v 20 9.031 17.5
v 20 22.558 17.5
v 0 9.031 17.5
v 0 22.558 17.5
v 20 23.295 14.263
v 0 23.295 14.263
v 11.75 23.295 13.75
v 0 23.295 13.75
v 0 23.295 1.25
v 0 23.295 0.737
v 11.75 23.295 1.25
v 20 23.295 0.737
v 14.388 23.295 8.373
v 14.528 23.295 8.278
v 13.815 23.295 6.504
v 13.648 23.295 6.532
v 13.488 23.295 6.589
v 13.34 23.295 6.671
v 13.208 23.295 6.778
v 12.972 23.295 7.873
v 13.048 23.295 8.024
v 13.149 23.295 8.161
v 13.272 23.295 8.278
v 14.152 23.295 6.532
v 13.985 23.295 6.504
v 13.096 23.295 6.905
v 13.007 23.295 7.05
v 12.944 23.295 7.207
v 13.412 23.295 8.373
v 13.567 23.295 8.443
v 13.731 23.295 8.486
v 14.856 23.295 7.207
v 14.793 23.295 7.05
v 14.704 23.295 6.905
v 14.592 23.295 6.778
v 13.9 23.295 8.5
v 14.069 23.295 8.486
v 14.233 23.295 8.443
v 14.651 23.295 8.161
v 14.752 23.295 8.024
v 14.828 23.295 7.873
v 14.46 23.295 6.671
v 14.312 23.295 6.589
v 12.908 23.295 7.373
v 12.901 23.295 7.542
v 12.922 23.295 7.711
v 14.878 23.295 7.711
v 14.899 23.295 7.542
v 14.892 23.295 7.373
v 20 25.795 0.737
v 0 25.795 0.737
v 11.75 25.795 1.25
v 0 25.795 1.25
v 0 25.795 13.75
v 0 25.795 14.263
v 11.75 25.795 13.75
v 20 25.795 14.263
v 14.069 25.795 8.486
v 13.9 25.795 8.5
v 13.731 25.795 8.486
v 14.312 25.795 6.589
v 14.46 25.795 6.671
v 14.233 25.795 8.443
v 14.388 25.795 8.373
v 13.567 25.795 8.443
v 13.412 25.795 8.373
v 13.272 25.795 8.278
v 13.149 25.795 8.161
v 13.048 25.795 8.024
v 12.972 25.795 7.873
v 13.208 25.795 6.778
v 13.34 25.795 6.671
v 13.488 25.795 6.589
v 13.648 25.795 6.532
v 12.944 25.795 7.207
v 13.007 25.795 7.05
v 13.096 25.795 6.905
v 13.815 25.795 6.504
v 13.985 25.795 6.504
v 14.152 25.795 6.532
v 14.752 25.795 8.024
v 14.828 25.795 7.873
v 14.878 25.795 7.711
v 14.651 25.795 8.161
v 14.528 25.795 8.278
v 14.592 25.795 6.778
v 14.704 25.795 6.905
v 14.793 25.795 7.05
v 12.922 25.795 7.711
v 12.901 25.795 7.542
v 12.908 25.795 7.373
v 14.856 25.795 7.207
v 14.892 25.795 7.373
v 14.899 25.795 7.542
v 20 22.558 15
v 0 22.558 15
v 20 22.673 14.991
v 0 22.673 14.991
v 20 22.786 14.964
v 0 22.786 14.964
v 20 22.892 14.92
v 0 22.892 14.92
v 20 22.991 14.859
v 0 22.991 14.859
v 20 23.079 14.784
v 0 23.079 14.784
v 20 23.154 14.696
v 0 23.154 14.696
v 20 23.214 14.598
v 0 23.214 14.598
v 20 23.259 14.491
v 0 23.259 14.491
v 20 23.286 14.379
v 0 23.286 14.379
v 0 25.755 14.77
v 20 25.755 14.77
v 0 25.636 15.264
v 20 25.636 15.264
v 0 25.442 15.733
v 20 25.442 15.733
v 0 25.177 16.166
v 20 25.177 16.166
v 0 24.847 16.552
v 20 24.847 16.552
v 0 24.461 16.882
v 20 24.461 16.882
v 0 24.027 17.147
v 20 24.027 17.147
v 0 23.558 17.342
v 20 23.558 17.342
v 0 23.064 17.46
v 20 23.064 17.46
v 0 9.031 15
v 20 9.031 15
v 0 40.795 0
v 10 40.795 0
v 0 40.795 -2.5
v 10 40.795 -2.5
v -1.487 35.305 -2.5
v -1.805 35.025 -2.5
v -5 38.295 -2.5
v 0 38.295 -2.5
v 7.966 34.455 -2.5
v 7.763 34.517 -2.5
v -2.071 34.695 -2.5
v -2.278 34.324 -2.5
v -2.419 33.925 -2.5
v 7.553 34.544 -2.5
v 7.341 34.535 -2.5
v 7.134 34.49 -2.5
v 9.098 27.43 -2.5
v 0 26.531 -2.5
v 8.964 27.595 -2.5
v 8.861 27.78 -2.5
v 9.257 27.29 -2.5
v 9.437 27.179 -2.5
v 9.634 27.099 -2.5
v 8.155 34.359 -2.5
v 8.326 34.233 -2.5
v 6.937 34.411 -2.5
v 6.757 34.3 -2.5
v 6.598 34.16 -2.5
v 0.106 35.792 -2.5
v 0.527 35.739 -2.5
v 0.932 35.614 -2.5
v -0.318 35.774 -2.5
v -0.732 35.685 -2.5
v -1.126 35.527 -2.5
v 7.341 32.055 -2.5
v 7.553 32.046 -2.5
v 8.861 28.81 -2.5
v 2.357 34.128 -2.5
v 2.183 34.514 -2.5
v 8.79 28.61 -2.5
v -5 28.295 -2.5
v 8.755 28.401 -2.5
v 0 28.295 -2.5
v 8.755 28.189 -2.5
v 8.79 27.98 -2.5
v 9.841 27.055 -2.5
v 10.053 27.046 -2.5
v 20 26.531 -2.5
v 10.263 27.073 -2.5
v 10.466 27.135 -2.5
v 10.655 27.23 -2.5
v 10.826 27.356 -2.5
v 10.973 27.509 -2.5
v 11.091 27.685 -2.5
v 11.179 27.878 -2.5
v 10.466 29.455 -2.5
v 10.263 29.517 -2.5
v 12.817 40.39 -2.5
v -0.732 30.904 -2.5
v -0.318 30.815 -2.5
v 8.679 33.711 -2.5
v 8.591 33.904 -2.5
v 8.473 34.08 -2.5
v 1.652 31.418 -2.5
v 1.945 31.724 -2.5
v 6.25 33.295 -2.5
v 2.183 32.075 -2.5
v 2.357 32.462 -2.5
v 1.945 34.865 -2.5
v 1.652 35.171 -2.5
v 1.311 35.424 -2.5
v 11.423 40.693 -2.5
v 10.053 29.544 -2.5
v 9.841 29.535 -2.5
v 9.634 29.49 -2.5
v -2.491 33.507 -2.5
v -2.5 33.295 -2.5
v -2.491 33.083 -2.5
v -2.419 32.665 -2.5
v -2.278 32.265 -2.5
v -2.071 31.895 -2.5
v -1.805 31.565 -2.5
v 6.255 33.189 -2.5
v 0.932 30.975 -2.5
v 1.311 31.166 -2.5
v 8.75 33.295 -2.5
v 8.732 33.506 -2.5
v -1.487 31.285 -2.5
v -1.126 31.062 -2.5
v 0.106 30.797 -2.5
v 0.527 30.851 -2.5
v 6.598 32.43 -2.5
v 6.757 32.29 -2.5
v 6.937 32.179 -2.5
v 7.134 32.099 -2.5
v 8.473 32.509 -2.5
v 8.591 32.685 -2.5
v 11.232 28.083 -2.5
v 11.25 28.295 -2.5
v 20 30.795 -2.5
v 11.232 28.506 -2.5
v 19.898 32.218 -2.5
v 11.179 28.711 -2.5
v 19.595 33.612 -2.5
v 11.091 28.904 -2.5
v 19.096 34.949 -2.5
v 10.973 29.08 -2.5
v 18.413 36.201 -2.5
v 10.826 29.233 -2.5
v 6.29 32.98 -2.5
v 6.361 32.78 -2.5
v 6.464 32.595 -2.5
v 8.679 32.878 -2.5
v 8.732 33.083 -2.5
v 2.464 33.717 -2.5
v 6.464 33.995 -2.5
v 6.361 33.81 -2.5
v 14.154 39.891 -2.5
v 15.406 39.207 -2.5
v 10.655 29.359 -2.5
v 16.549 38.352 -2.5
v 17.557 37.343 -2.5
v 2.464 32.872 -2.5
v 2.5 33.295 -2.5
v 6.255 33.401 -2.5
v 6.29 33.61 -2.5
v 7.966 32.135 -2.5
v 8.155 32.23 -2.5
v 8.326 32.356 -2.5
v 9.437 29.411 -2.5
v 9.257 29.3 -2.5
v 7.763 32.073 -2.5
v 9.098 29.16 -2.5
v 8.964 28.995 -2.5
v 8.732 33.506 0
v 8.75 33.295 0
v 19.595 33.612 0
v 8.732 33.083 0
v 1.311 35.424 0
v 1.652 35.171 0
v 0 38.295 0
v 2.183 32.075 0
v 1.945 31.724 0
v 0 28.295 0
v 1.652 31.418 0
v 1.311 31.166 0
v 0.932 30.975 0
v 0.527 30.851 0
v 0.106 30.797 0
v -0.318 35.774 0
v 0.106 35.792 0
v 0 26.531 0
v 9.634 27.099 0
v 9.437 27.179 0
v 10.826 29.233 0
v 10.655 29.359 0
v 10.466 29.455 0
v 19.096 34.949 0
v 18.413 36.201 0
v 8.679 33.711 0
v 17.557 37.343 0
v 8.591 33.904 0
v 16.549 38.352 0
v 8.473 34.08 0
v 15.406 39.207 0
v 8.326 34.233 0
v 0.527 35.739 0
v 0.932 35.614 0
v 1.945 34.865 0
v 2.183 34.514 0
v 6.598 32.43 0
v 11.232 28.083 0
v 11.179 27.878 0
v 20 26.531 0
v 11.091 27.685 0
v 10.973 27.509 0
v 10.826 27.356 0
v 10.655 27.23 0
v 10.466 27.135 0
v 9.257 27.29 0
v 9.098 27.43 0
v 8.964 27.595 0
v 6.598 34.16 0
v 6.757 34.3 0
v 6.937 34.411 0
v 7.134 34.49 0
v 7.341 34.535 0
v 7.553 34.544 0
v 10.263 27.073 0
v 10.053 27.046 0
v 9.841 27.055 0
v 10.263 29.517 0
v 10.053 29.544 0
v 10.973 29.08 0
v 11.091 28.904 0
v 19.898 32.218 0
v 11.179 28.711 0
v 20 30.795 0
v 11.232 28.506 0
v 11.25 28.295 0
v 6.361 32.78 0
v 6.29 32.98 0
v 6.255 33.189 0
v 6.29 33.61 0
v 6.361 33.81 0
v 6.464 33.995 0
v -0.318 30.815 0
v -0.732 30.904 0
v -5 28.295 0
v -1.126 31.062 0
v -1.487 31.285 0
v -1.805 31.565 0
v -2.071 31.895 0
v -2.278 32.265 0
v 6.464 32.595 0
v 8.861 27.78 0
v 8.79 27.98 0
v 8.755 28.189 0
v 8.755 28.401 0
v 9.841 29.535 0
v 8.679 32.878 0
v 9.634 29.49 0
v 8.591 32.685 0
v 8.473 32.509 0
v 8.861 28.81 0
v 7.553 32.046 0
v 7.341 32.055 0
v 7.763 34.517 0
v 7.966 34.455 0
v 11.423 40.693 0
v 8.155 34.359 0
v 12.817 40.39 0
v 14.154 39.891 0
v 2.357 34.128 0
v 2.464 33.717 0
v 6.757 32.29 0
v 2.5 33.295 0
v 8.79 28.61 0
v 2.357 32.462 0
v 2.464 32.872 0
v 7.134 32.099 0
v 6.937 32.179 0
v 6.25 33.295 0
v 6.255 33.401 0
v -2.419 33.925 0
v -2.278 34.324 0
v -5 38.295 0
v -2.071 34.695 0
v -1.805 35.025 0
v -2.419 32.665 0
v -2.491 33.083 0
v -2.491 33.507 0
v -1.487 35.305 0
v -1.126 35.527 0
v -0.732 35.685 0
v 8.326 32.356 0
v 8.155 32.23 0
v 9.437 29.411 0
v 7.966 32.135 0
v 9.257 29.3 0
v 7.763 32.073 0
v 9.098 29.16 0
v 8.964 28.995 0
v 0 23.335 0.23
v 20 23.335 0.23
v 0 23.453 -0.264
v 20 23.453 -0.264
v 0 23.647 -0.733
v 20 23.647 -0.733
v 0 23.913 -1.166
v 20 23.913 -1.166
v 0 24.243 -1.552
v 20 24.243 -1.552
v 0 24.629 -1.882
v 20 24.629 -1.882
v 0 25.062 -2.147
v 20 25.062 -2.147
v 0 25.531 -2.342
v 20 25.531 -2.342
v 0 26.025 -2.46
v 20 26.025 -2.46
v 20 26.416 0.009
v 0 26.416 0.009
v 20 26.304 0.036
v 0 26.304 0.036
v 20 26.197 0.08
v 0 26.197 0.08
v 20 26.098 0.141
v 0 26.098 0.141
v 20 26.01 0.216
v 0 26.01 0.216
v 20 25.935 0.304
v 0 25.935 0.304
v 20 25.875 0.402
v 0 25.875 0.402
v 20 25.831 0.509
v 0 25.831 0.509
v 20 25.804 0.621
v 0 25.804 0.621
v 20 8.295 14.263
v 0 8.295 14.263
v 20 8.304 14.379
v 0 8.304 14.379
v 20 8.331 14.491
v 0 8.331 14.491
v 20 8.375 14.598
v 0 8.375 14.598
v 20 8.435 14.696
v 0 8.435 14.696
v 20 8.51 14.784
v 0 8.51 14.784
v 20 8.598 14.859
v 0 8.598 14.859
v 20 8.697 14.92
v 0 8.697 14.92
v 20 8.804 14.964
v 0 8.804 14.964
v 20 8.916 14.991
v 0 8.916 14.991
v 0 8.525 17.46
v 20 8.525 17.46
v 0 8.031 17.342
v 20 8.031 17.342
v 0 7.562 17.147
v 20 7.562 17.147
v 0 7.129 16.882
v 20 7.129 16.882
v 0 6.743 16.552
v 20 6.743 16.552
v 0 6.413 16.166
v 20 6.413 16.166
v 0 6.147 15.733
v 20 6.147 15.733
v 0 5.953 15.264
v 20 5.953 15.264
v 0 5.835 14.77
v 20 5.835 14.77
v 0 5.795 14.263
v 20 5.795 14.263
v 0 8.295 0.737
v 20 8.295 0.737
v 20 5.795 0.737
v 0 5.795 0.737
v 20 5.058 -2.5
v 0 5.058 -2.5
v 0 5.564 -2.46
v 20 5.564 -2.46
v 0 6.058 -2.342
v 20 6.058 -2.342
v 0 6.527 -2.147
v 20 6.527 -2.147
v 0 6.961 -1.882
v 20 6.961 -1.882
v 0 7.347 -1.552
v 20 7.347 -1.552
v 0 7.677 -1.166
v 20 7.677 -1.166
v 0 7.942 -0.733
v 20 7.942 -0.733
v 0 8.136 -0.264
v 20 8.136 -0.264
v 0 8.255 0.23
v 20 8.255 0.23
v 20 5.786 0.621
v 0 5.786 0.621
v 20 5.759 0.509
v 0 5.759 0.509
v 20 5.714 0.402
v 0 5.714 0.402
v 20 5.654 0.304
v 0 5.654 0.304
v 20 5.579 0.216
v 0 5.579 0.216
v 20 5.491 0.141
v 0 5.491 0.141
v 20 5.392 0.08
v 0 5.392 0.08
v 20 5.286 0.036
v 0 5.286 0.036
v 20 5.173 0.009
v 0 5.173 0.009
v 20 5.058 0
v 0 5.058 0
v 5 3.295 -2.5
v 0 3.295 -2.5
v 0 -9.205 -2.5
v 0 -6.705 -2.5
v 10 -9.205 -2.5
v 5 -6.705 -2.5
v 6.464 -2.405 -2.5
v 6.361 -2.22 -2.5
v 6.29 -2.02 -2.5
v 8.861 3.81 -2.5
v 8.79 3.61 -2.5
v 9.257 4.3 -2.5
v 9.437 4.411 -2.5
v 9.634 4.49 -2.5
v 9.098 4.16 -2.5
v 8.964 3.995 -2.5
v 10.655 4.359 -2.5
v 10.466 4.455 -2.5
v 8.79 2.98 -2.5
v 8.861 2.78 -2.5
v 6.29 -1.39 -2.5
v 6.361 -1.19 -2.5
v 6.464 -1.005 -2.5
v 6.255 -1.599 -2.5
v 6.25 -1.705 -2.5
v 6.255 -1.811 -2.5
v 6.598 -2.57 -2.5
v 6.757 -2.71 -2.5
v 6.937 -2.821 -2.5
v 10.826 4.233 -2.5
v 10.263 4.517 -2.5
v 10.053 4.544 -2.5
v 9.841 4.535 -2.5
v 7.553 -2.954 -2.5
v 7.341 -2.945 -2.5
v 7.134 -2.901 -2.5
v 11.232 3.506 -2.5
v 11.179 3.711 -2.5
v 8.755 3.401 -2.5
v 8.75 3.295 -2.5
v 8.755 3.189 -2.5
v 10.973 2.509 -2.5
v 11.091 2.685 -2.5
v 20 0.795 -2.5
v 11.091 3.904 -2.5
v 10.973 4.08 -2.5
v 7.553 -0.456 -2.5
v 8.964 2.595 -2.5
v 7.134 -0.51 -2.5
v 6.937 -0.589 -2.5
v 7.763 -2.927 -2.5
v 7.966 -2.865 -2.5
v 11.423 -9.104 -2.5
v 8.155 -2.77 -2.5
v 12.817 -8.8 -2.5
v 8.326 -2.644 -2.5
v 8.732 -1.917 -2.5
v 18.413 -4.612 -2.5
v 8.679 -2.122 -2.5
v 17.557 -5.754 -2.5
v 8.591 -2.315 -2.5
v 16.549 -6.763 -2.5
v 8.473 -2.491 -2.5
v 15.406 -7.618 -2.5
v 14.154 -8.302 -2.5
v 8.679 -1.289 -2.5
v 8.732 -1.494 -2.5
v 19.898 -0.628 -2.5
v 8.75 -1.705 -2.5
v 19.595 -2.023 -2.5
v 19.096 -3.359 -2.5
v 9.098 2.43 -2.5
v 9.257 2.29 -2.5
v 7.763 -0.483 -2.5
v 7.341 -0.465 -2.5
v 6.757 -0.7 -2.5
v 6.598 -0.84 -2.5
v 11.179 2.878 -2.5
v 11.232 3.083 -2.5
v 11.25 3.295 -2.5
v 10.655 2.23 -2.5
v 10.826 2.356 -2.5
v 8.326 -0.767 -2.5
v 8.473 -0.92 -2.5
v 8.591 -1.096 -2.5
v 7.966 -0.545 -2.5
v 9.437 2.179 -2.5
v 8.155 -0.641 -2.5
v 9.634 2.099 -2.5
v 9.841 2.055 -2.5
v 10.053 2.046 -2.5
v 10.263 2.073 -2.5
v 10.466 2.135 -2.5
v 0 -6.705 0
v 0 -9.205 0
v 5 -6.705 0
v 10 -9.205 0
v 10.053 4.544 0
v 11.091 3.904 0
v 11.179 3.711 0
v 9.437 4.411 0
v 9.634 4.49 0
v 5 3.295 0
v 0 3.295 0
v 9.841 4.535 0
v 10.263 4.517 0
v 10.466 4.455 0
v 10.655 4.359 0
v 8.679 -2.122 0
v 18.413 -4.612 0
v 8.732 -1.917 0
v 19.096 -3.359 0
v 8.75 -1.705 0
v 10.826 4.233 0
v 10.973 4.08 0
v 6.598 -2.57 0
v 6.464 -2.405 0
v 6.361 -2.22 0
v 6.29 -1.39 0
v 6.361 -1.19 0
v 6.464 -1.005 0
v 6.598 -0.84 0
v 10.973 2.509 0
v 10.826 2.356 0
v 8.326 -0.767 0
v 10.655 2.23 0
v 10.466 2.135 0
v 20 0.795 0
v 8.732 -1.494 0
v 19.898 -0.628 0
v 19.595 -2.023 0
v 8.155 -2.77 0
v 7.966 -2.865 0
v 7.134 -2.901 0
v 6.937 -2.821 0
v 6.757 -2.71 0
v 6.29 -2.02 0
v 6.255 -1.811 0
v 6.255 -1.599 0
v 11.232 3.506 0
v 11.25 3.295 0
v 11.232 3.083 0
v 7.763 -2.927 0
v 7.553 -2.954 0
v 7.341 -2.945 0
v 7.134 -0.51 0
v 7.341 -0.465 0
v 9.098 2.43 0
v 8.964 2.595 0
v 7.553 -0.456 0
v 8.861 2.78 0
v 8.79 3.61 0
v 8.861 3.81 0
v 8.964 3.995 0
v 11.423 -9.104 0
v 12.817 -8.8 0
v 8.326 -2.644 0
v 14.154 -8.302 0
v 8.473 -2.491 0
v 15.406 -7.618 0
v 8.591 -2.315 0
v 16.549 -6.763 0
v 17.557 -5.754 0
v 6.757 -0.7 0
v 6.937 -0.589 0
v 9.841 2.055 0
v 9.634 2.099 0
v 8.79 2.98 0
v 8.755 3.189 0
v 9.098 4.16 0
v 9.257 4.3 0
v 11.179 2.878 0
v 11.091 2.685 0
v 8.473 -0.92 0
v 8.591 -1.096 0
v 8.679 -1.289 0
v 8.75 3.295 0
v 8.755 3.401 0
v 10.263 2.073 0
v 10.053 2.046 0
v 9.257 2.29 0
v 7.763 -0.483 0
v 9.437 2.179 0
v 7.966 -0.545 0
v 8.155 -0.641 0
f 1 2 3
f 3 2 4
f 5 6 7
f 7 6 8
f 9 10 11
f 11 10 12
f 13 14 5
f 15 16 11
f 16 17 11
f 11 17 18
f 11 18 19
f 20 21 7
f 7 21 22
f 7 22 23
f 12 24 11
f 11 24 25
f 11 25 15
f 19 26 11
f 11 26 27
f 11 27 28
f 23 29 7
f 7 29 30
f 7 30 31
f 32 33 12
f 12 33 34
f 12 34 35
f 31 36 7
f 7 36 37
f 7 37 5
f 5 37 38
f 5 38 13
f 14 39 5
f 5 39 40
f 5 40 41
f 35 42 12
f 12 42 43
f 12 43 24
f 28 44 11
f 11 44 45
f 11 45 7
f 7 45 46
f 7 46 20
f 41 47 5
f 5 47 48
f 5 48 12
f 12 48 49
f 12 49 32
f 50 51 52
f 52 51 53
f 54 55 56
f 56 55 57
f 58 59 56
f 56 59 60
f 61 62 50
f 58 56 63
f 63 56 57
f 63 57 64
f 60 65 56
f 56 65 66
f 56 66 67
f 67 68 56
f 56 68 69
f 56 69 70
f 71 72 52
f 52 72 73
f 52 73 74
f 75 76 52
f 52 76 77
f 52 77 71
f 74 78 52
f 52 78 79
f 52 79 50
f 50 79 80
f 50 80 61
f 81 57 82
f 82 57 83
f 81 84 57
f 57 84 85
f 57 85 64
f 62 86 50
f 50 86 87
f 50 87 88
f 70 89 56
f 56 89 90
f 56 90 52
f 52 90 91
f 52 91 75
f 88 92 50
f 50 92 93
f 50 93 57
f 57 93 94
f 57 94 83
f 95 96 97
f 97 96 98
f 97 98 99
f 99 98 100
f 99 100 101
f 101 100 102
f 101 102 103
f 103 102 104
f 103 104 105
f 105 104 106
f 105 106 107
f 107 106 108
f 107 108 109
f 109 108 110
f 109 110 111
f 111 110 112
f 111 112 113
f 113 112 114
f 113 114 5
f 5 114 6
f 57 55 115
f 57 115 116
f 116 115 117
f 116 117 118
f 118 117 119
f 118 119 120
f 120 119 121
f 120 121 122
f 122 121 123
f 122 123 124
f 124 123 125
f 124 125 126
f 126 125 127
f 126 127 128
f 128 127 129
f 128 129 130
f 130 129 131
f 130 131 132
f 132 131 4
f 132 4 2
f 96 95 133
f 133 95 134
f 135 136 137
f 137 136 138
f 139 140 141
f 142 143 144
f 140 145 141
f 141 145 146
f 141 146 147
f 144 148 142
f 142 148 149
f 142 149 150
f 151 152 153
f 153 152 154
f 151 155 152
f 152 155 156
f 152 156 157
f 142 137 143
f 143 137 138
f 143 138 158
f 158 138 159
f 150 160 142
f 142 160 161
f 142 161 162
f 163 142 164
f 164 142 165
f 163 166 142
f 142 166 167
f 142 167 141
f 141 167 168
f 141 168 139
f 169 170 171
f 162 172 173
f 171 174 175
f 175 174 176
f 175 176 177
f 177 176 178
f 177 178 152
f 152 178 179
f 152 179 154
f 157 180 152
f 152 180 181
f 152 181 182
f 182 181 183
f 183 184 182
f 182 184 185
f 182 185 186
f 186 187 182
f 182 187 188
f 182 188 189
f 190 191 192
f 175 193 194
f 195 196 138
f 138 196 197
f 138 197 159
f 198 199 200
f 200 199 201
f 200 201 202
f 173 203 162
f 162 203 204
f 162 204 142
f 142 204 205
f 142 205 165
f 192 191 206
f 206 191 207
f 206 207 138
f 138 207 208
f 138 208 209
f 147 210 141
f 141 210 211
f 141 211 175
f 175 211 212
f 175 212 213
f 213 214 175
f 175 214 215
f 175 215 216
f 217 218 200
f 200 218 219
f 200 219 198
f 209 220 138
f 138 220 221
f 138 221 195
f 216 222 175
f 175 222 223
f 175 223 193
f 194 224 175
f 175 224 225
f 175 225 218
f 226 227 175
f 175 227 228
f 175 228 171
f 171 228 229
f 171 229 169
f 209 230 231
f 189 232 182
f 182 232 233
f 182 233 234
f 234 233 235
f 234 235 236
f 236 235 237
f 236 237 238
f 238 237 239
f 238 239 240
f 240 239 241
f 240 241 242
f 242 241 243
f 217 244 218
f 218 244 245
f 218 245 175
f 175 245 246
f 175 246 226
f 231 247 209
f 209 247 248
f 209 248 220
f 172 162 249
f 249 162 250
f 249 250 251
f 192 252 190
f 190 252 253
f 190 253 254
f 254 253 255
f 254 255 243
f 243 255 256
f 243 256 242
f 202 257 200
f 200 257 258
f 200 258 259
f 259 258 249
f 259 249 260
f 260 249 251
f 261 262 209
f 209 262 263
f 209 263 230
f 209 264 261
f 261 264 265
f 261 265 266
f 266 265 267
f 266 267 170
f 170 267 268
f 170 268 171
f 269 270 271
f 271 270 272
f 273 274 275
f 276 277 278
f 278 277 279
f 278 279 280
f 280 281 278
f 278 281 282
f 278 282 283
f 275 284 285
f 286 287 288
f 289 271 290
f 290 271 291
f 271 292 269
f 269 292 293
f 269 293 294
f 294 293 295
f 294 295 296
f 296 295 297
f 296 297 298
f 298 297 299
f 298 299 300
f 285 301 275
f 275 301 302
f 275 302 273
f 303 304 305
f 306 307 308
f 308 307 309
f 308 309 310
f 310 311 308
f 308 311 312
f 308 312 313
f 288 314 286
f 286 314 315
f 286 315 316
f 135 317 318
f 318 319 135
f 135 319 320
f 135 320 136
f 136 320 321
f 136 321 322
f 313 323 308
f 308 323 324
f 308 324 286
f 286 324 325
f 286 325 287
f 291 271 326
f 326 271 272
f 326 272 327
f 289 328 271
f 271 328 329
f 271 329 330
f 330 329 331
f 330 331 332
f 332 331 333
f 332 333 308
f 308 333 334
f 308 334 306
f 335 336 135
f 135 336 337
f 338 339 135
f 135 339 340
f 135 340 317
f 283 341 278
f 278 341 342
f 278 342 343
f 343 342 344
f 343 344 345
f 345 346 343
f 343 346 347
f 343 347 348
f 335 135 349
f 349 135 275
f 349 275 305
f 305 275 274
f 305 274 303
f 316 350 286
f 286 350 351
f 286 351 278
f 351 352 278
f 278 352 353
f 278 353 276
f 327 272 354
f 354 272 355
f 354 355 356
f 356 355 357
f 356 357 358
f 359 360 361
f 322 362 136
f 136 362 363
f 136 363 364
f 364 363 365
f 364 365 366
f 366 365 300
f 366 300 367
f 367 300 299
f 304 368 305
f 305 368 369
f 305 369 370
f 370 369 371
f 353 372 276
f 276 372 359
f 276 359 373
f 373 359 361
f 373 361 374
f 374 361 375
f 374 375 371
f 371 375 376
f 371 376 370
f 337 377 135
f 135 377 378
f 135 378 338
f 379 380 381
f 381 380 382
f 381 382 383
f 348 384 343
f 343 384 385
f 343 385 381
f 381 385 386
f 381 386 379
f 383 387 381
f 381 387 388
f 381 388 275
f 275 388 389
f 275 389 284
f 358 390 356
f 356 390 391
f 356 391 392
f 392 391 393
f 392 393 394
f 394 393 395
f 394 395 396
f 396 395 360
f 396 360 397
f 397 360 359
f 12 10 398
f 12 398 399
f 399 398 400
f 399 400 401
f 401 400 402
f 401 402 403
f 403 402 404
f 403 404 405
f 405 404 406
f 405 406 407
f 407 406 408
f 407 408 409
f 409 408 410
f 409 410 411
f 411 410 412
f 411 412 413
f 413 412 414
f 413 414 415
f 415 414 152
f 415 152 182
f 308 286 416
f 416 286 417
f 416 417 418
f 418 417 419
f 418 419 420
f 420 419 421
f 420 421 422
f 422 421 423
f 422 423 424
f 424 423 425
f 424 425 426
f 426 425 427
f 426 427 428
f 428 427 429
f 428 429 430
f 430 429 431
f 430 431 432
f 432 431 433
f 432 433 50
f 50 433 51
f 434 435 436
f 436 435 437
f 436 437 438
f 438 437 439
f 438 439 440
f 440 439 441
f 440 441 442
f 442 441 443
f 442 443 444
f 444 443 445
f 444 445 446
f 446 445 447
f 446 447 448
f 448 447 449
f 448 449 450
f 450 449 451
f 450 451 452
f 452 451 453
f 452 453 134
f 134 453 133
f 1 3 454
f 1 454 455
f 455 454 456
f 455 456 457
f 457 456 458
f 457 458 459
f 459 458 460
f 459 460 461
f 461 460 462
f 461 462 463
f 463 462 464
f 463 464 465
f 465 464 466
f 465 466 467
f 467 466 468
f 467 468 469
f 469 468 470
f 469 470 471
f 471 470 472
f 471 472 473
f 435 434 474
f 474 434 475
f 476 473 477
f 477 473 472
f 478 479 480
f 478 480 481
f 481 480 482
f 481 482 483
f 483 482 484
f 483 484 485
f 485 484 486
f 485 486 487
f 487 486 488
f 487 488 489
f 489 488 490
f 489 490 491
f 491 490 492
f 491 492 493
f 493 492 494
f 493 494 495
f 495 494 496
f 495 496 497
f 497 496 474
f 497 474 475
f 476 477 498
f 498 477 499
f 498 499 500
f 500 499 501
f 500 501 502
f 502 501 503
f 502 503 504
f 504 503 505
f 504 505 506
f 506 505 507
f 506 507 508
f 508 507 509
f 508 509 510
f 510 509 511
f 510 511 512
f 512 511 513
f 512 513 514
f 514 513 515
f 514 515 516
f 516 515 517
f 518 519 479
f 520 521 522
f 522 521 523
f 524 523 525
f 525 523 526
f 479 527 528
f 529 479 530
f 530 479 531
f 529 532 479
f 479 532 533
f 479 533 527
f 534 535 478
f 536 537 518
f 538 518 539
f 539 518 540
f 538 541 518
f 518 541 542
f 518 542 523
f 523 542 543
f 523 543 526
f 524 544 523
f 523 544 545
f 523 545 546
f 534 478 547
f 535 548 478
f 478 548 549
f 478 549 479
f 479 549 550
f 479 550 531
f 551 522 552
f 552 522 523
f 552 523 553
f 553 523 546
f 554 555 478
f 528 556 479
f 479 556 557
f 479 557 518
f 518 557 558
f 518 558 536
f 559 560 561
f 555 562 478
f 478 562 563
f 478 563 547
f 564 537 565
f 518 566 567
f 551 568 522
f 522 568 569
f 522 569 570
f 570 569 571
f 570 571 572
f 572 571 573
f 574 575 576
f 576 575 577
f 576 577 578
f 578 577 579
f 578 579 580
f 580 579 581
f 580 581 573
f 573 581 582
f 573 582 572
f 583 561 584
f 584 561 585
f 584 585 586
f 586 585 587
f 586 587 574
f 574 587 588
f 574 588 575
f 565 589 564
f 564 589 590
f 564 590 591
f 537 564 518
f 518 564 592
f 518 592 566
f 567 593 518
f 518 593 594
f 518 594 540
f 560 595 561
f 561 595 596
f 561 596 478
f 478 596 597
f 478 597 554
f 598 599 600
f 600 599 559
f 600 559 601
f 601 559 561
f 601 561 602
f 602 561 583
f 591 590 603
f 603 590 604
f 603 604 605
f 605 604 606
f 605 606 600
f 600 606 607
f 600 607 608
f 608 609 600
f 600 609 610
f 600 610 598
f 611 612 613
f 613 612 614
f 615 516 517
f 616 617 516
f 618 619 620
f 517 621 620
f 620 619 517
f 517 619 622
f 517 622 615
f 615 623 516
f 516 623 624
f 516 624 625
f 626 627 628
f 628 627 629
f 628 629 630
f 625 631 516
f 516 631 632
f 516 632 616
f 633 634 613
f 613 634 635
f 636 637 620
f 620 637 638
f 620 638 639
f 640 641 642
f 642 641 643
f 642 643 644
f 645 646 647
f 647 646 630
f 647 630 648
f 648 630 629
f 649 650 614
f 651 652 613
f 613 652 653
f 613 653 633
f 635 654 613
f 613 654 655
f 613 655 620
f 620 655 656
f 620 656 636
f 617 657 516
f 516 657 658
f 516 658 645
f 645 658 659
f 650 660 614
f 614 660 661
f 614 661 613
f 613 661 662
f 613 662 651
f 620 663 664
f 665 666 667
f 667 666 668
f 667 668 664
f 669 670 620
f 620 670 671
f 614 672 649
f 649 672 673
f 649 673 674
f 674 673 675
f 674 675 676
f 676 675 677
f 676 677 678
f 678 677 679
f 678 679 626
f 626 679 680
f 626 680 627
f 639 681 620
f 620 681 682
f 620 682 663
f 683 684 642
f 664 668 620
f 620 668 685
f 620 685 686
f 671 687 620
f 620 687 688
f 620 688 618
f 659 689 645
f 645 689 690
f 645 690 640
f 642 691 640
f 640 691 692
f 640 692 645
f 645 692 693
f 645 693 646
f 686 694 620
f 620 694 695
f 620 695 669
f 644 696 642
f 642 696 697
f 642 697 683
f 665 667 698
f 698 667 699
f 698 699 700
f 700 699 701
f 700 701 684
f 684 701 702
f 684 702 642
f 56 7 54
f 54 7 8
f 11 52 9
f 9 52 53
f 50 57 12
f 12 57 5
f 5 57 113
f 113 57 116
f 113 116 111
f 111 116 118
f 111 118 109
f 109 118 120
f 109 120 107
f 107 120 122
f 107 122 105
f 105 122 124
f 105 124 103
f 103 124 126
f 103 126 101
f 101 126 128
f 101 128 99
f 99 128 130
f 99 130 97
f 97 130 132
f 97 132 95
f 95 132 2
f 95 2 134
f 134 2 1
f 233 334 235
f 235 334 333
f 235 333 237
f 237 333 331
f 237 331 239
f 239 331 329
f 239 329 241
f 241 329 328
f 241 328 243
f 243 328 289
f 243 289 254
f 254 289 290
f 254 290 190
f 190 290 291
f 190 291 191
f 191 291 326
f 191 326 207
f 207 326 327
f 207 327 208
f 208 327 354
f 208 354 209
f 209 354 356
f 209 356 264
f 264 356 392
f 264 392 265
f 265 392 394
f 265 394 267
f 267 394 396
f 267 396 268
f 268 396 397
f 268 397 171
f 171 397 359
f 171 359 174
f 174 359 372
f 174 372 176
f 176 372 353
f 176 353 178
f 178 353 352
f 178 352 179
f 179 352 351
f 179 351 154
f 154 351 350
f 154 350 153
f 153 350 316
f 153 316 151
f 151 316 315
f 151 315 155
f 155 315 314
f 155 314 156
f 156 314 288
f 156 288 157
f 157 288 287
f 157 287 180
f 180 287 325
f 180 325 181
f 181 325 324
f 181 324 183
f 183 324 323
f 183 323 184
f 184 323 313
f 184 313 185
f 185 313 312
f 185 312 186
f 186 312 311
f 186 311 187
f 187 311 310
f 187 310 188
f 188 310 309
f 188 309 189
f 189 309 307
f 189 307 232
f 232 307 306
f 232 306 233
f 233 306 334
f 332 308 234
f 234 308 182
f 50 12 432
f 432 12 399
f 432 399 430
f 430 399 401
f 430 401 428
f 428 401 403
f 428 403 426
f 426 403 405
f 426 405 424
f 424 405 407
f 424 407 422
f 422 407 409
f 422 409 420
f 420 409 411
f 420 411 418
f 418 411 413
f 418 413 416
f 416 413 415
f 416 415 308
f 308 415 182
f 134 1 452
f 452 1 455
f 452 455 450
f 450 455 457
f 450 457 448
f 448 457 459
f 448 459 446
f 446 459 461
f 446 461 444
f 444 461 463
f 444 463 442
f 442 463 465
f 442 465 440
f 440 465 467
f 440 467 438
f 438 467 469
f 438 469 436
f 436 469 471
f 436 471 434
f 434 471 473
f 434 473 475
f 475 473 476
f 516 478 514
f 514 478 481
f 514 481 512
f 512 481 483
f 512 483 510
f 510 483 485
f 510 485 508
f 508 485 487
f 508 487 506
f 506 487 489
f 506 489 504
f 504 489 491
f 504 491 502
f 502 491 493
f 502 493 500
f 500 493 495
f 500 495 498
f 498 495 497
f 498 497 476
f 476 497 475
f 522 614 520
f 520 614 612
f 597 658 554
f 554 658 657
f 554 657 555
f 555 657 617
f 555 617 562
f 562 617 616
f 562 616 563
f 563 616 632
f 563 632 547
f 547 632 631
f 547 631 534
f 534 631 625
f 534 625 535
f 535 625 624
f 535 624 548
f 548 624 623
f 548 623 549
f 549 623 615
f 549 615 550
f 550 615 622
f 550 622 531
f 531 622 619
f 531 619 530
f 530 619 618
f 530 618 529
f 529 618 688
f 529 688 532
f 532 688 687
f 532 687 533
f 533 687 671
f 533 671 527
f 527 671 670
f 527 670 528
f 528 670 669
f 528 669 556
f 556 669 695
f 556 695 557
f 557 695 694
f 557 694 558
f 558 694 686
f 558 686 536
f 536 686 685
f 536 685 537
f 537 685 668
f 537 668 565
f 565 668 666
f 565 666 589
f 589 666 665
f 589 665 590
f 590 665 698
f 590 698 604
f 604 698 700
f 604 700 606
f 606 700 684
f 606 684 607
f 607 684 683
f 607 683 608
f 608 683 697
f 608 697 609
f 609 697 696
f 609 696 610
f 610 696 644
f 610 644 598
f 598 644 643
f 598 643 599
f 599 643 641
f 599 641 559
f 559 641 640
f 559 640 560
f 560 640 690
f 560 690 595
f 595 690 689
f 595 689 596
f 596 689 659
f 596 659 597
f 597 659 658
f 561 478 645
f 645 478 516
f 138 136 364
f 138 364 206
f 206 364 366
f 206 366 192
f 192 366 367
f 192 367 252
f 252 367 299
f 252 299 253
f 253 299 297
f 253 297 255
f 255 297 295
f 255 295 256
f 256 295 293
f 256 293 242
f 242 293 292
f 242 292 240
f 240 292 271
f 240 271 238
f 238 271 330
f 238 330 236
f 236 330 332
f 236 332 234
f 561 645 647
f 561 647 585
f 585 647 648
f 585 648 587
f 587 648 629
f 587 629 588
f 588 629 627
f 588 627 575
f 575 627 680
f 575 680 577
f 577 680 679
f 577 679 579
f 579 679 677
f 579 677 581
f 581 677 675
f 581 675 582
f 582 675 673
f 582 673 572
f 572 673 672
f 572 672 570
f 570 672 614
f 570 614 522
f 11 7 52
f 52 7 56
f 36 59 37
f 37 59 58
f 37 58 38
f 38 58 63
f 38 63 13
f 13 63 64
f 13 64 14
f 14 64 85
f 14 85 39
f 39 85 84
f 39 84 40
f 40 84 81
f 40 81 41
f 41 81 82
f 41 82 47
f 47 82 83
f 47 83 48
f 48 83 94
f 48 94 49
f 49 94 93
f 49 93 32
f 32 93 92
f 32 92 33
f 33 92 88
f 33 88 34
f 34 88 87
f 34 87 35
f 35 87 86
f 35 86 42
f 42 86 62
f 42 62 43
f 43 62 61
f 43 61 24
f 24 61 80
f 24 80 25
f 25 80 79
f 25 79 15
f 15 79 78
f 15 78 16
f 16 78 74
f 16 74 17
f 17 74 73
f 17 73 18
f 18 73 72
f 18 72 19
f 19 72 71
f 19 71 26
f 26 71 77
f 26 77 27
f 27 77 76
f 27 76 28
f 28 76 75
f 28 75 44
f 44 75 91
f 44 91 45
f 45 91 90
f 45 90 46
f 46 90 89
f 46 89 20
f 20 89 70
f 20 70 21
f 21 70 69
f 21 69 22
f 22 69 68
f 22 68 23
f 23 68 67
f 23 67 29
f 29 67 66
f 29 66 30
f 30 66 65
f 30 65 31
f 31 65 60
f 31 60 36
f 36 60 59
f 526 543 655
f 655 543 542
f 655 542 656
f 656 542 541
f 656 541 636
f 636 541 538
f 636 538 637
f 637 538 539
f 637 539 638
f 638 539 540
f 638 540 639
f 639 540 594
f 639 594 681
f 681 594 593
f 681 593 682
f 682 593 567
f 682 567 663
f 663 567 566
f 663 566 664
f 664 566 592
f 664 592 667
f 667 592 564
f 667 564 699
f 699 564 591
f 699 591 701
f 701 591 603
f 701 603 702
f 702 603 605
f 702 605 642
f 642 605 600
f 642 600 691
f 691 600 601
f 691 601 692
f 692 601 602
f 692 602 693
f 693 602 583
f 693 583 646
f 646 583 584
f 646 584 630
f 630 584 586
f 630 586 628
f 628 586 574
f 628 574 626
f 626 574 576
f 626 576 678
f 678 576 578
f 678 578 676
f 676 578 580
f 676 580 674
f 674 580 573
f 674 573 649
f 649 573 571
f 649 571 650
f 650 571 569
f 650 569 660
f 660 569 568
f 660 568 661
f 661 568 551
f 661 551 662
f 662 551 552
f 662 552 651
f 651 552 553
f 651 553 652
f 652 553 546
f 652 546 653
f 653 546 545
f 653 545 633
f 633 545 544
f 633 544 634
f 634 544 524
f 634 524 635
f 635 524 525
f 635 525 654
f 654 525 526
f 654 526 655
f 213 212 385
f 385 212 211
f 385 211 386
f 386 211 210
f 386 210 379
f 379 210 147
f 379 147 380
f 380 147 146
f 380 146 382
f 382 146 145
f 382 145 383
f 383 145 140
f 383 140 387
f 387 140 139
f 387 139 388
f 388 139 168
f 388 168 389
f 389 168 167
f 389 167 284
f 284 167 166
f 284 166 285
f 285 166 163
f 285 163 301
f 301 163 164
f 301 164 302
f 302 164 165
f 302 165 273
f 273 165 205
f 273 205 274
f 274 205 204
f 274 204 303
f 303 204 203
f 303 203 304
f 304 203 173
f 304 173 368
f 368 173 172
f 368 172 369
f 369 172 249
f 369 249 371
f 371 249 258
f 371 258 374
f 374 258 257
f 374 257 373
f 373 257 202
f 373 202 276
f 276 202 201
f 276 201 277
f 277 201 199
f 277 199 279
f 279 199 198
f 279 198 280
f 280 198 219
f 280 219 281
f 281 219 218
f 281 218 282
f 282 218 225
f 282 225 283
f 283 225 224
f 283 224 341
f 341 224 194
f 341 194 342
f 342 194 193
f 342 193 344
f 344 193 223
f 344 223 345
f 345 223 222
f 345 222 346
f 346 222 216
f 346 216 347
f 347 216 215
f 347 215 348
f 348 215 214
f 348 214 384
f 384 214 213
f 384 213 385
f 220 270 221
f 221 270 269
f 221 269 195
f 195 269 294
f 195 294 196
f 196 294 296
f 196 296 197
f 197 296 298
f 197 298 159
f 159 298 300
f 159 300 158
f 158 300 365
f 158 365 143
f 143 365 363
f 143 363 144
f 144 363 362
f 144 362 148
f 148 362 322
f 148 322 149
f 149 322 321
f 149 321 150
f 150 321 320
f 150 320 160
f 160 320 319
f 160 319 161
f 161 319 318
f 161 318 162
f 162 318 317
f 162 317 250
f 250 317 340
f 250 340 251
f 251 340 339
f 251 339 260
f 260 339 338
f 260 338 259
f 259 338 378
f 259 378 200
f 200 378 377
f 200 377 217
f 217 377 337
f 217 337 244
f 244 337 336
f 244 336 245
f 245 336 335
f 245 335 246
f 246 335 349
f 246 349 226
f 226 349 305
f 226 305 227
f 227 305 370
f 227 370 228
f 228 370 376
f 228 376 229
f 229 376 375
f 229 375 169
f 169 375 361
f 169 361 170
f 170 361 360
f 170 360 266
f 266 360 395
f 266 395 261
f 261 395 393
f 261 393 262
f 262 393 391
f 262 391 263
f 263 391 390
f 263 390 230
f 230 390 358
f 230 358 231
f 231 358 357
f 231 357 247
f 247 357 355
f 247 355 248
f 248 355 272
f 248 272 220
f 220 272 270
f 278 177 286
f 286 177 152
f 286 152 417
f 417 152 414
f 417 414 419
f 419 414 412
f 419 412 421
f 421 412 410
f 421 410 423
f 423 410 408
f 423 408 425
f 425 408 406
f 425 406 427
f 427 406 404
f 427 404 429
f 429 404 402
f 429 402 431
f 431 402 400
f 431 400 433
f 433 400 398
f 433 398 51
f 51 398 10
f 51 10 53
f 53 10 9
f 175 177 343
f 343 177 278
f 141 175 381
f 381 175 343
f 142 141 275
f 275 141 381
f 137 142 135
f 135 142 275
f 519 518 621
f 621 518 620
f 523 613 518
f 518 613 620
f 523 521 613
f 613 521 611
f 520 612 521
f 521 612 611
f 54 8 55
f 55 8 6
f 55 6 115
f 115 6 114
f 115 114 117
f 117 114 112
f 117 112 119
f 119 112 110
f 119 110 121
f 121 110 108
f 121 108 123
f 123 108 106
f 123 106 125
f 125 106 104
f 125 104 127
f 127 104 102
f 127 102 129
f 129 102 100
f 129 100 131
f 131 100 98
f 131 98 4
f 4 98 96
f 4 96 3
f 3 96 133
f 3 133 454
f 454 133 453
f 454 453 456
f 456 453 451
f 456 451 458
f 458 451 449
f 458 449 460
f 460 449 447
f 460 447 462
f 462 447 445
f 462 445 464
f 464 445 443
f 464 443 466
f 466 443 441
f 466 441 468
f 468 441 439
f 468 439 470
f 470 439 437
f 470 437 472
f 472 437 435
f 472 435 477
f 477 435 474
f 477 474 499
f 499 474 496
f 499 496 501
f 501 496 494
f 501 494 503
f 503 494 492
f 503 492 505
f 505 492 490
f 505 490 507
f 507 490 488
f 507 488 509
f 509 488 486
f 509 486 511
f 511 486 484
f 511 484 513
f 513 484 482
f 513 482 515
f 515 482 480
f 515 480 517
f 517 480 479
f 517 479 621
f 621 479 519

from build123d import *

# Parameters (mm, degrees)
SKETCH1_W           = 40
SKETCH1_H           = 50
SKETCH1_R           = 1.25
BASE_FLANGE1_DEPTH  = 2.5
SKETCH15_R          = 1
CUT_EXTRUDE3_DEPTH  = 10
JOG3_START          = -2.5
JOG3_OUTLINE_W      = 40
JOG3_OUTLINE_H      = 48.294687966
JOG3_OUTLINE_R      = 1
JOG3_OUTLINE_R_2    = 1.25
JOG3_DEPTH          = 2.5
JOG3_2_OUTLINE_W    = 40
JOG3_2_OUTLINE_H    = 1.705312034
JOG3_2_DEPTH        = 0.332528284
JOG3_START_2        = 14.2634
JOG3_3_OUTLINE_W    = 40
JOG3_3_OUTLINE_H    = 35
JOG3_3_OUTLINE_R    = 1
JOG3_3_OUTLINE_R_2  = 1.25
JOG3_3_DEPTH        = 3.2366
JOG3_4_OUTLINE_W    = 40
JOG3_4_OUTLINE_H    = 15.794687966
JOG3_4_OUTLINE_R    = 1.25
JOG3_4_DEPTH        = 3.2366
JOG3_5_OUTLINE_W    = 40
JOG3_5_OUTLINE_H    = 2.5
JOG3_5_DEPTH        = 15
JOG3_START_3        = 15
JOG3_6_OUTLINE_R    = 1.25
JOG3_6_OUTLINE_R_2  = 1
JOG3_6_DEPTH        = 2.5
JOG3_START_4        = -20
JOG3_7_DEPTH        = 40
JOG4_START          = -20
JOG4_DEPTH          = 40
JOG4_2_DEPTH        = 40
JOG4_START_2        = -3
JOG4_3_OUTLINE_R    = 1.25
JOG4_3_DEPTH        = 4
FILLET1_R           = 10
SKETCH18_R          = 2.5
BOSS_EXTRUDE1_DEPTH = 2.5
SKETCH19_R          = 1
SKETCH19_W          = 23.5
SKETCH19_H          = 12.5
CUT_EXTRUDE4_DEPTH  = 2.5
SKETCH20_R          = 2.5
SKETCH20_R_2        = 1.25
CUT_EXTRUDE6_DEPTH  = 10
SKETCH23_R          = 2.5
CUT_EXTRUDE7_DEPTH  = 44.945989578
SKETCH24_R          = 5
CUT_EXTRUDE8_DEPTH  = 1.25
SKETCH25_W          = 20
SKETCH25_H          = 13.5268
CUT_EXTRUDE11_DEPTH = 50.640775238


with BuildPart() as part:
    # Base-Flange1: sheet metal written as solids
    # Sketch1 → Base-Flange1 (new body)
    with BuildSketch(Plane.XY):
        Rectangle(SKETCH1_W, SKETCH1_H)
        with Locations((10, 12.5)):
            Circle(SKETCH1_R, mode=Mode.SUBTRACT)
        with Locations(Location((10, -12.5, 0), (0, 0, 180))):
            Circle(SKETCH1_R, mode=Mode.SUBTRACT)
        with Locations((-10, -12.5)):
            Circle(SKETCH1_R, mode=Mode.SUBTRACT)
        with Locations(Location((-10, 12.5, 0), (0, 0, 180))):
            Circle(SKETCH1_R, mode=Mode.SUBTRACT)
    extrude(amount=-BASE_FLANGE1_DEPTH)

    # Sketch15 → Cut-Extrude3 (cut)
    with BuildSketch(Plane.XY):
        with Locations((12, 0)):
            Circle(SKETCH15_R)
        with Locations(Location((-17, 0, 0), (0, 0, 180))):
            Circle(SKETCH15_R)
    extrude(amount=-CUT_EXTRUDE3_DEPTH, mode=Mode.SUBTRACT)

    # Jog3: read off the stored shape, not the designer's step
    # Jog3 outline → Jog3 (cut)
    with BuildSketch(Plane.XY.offset(JOG3_START)):
        with Locations((0, -0.852656017)):
            Rectangle(JOG3_OUTLINE_W, JOG3_OUTLINE_H)
        with Locations((-17, 0)):
            Circle(JOG3_OUTLINE_R, mode=Mode.SUBTRACT)
        with Locations((12, 0)):
            Circle(JOG3_OUTLINE_R, mode=Mode.SUBTRACT)
        with Locations((-10, 12.5)):
            Circle(JOG3_OUTLINE_R_2, mode=Mode.SUBTRACT)
        with Locations((10, 12.5)):
            Circle(JOG3_OUTLINE_R_2, mode=Mode.SUBTRACT)
        with Locations((10, -12.5)):
            Circle(JOG3_OUTLINE_R_2, mode=Mode.SUBTRACT)
        with Locations((-10, -12.5)):
            Circle(JOG3_OUTLINE_R_2, mode=Mode.SUBTRACT)
    extrude(amount=JOG3_DEPTH, mode=Mode.SUBTRACT)

    # Jog3 2 outline → Jog3 2 (cut)
    with BuildSketch(Plane.XY.offset(JOG3_START)):
        with Locations((0, 24.147343983)):
            Rectangle(JOG3_2_OUTLINE_W, JOG3_2_OUTLINE_H)
    extrude(amount=JOG3_2_DEPTH, mode=Mode.SUBTRACT)

    # Jog3 4 outline → Jog3 4 (add)
    with BuildSketch(Plane.XY.offset(JOG3_START)):
        with Locations((0, 32.897343983)):
            Rectangle(JOG3_4_OUTLINE_W, JOG3_4_OUTLINE_H)
        with Locations((10, 28.294687966)):
            Circle(JOG3_4_OUTLINE_R, mode=Mode.SUBTRACT)
        with Locations((-10, 28.294687966)):
            Circle(JOG3_4_OUTLINE_R, mode=Mode.SUBTRACT)
    extrude(amount=JOG3_4_DEPTH)



with BuildPart() as body_2:
    # Jog3 3 outline → Jog3 3 (new body)
    with BuildSketch(Plane.XY.offset(JOG3_START_2)):
        with Locations((0, 8.294687966)):
            Rectangle(JOG3_3_OUTLINE_W, JOG3_3_OUTLINE_H)
        with Locations((12, 15.794687966)):
            Circle(JOG3_3_OUTLINE_R, mode=Mode.SUBTRACT)
        with Locations((-17, 0)):
            Circle(JOG3_3_OUTLINE_R, mode=Mode.SUBTRACT)
        with Locations((-10, 3.294687966)):
            Circle(JOG3_3_OUTLINE_R_2, mode=Mode.SUBTRACT)
        with Locations((12, 0)):
            Circle(JOG3_3_OUTLINE_R, mode=Mode.SUBTRACT)
        with Locations((10, 3.294687966)):
            Circle(JOG3_3_OUTLINE_R_2, mode=Mode.SUBTRACT)
        with Locations((-17, 15.794687966)):
            Circle(JOG3_3_OUTLINE_R, mode=Mode.SUBTRACT)
        with Locations((-10, 12.5)):
            Circle(JOG3_3_OUTLINE_R_2, mode=Mode.SUBTRACT)
        with Locations((10, 12.5)):
            Circle(JOG3_3_OUTLINE_R_2, mode=Mode.SUBTRACT)
    extrude(amount=JOG3_3_DEPTH)


with BuildPart() as part_1:
    add(part.part)

    add(body_2.part)  # Jog3 5 merges body 2
    # Jog3 5 outline → Jog3 5 (add)
    with BuildSketch(Plane.XY):
        with Locations((0, 24.544687966)):
            Rectangle(JOG3_5_OUTLINE_W, JOG3_5_OUTLINE_H)
    extrude(amount=JOG3_5_DEPTH)

    # Jog3 6 outline → Jog3 6 (add)
    with BuildSketch(Plane.XY.offset(JOG3_START_3)):
        with Locations((10, 12.5)):
            Circle(JOG3_6_OUTLINE_R)
        with Locations((-10, 12.5)):
            Circle(JOG3_6_OUTLINE_R)
        with Locations((12, 0)):
            Circle(JOG3_6_OUTLINE_R_2)
        with Locations((-17, 0)):
            Circle(JOG3_6_OUTLINE_R_2)
    extrude(amount=JOG3_6_DEPTH)

    # Jog3 7 outline → Jog3 7 (cut)
    with BuildSketch(Plane.YZ.offset(JOG3_START_4)):
        with BuildLine():
            ThreePointArc((23.294687966, 14.2634), (23.078942821, 14.784254855), (22.558087966, 15))
            Line((22.558087966, 15), (-9.205312034, 15))
            Line((-9.205312034, 15), (-9.205312034, 14.2634))
            Line((-9.205312034, 14.2634), (23.294687966, 14.2634))
        make_face()
        with BuildLine():
            ThreePointArc((26.531287966, -2.5), (24.242666158, -1.552021808), (23.294687966, 0.7366))
            Line((23.294687966, 0.7366), (23.294687966, -2.167471716))
            Line((23.294687966, -2.167471716), (25, -2.167471716))
            Line((25, -2.167471716), (25, -2.5))
            Line((25, -2.5), (26.531287966, -2.5))
        make_face()
        with BuildLine():
            Line((26.531287966, 0), (40.794687966, 0))
            Line((40.794687966, 0), (40.794687966, 0.7366))
            Line((40.794687966, 0.7366), (25.794687966, 0.7366))
            ThreePointArc((25.794687966, 0.7366), (26.010433111, 0.215745145), (26.531287966, 0))
        make_face()
        with BuildLine():
            Line((25.794687966, 17.5), (22.558087966, 17.5))
            ThreePointArc((22.558087966, 17.5), (24.846709774, 16.552021808), (25.794687966, 14.2634))
            Line((25.794687966, 14.2634), (25.794687966, 17.5))
        make_face()
    extrude(amount=JOG3_7_DEPTH, mode=Mode.SUBTRACT)

    # Jog4: read off the stored shape, not the designer's step
    # Jog4 outline → Jog4 (cut)
    with BuildSketch(Plane.YZ.offset(JOG4_START)):
        with BuildLine():
            Line((-9.205312034, 15), (5.87962174, 15))
            ThreePointArc((5.87962174, 15), (7.019882984, 16.799110859), (9.031287966, 17.5))
            Line((9.031287966, 17.5), (-9.205312034, 17.5))
            Line((-9.205312034, 17.5), (-9.205312034, 15))
        make_face()
    extrude(amount=JOG4_DEPTH, mode=Mode.SUBTRACT)

    # Jog4 2 outline → Jog4 2 (add)
    with BuildSketch(Plane.YZ.offset(JOG4_START)):
        with BuildLine():
            Line((-9.205312034, 0), (-9.205312034, -2.5))
            Line((-9.205312034, -2.5), (5.058087966, -2.5))
            ThreePointArc((5.058087966, -2.5), (7.346709774, -1.552021808), (8.294687966, 0.7366))
            Line((8.294687966, 0.7366), (8.294687966, 14.2634))
            ThreePointArc((8.294687966, 14.2634), (8.510433111, 14.784254855), (9.031287966, 15))
            Line((9.031287966, 15), (5.87962174, 15))
            ThreePointArc((5.87962174, 15), (5.81599152, 14.634140241), (5.794687966, 14.2634))
            Line((5.794687966, 14.2634), (5.794687966, 0.7366))
            ThreePointArc((5.794687966, 0.7366), (5.578942821, 0.215745145), (5.058087966, 0))
            Line((5.058087966, 0), (-9.205312034, 0))
        make_face()
    extrude(amount=JOG4_2_DEPTH)

    # Jog4 3 outline → Jog4 3 (cut)
    with BuildSketch(Plane.XY.offset(JOG4_START_2)):
        with Locations((-10, 3.294687966)):
            Circle(JOG4_3_OUTLINE_R)
        with Locations((10, 3.294687966)):
            Circle(JOG4_3_OUTLINE_R)
    extrude(amount=JOG4_3_DEPTH, mode=Mode.SUBTRACT)

    # Fillet1
    fillet1_edges = [part_1.edges().sort_by_distance(p)[0] for p in [
        (20, -9.205312034, -1.25),
        (-20, -9.205312034, -1.25),
        (-20, 40.794687966, -1.25),
        (20, 40.794687966, -1.25),
    ]]
    fillet(fillet1_edges, radius=FILLET1_R)

    # Sketch18 → Boss-Extrude1 (add)
    with BuildSketch(Plane.XY.offset(17.5)):
        with Locations((12, 15.794687966)):
            Circle(SKETCH18_R)
        with Locations((-17, 15.794687966)):
            Circle(SKETCH18_R)
    extrude(amount=-BOSS_EXTRUDE1_DEPTH)

    # Sketch19 → Cut-Extrude4 (cut)
    with BuildSketch(Plane(origin=(0, 25.794687966, 0), x_dir=(1, 0, 0), z_dir=(0, 1, 0))):
        with Locations(Location((13.9, -7.5, 0), (0, 0, 270))):
            Circle(SKETCH19_R)
        with Locations(Location((-13.9, -7.5, 0), (0, 0, 90))):
            Circle(SKETCH19_R)
        with Locations((0, -7.5)):
            Rectangle(SKETCH19_W, SKETCH19_H)
    extrude(amount=-CUT_EXTRUDE4_DEPTH, mode=Mode.SUBTRACT)

    # Sketch20 → Cut-Extrude6 (cut)
    with BuildSketch(Plane.XY):
        with Locations((0, 33.294687966)):
            Circle(SKETCH20_R)
        with Locations(Location((0, -1.705312034, 0), (0, 0, 180))):
            Circle(SKETCH20_R)
        with Locations((7.5, -1.705312034)):
            Circle(SKETCH20_R_2)
        with Locations(Location((-7.5, -1.705312034, 0), (0, 0, 180))):
            Circle(SKETCH20_R_2)
        with Locations(Location((7.5, 33.294687966, 0), (0, 0, 180))):
            Circle(SKETCH20_R_2)
        with Locations((-7.5, 33.294687966)):
            Circle(SKETCH20_R_2)
    extrude(amount=-CUT_EXTRUDE6_DEPTH, mode=Mode.SUBTRACT)

    # Sketch23 → Cut-Extrude7 (cut, through all)
    with BuildSketch(Plane(origin=(0, 25.794687966, 0), x_dir=(1, 0, 0), z_dir=(0, 1, 0))):
        with Locations(Location((-5.55, -7.5, 0), (0, 0, 270))):
            Circle(SKETCH23_R)
    extrude(amount=-CUT_EXTRUDE7_DEPTH, mode=Mode.SUBTRACT)

    # Sketch24 → Cut-Extrude8 (cut)
    with BuildSketch(Plane(origin=(0, 8.294687966, 0), x_dir=(1, 0, 0), z_dir=(0, 1, 0))):
        with Locations(Location((-5.55, -7.5, 0), (0, 0, 270))):
            Circle(SKETCH24_R)
    extrude(amount=-CUT_EXTRUDE8_DEPTH, mode=Mode.SUBTRACT)

    # Sketch25 → Cut-Extrude11 (cut, through all)
    with BuildSketch(Plane.XY.offset(17.5)):
        Polygon((0, 38.294687966), (0, 40.794687966), (-20, 40.794687966), (-20, 22.558087966), (0, 22.558087966), (0, 28.294687966), (-5, 28.294687966), (-5, 38.294687966), align=None)
        with Locations((-10, 15.794687966)):
            Rectangle(SKETCH25_W, SKETCH25_H)
        Polygon((0, 9.031287966), (-20, 9.031287966), (-20, -9.205312034), (0, -9.205312034), (0, -6.705312034), (5, -6.705312034), (5, 3.294687966), (0, 3.294687966), align=None)
    extrude(amount=-CUT_EXTRUDE11_DEPTH, mode=Mode.SUBTRACT)


solid = part_1.part
